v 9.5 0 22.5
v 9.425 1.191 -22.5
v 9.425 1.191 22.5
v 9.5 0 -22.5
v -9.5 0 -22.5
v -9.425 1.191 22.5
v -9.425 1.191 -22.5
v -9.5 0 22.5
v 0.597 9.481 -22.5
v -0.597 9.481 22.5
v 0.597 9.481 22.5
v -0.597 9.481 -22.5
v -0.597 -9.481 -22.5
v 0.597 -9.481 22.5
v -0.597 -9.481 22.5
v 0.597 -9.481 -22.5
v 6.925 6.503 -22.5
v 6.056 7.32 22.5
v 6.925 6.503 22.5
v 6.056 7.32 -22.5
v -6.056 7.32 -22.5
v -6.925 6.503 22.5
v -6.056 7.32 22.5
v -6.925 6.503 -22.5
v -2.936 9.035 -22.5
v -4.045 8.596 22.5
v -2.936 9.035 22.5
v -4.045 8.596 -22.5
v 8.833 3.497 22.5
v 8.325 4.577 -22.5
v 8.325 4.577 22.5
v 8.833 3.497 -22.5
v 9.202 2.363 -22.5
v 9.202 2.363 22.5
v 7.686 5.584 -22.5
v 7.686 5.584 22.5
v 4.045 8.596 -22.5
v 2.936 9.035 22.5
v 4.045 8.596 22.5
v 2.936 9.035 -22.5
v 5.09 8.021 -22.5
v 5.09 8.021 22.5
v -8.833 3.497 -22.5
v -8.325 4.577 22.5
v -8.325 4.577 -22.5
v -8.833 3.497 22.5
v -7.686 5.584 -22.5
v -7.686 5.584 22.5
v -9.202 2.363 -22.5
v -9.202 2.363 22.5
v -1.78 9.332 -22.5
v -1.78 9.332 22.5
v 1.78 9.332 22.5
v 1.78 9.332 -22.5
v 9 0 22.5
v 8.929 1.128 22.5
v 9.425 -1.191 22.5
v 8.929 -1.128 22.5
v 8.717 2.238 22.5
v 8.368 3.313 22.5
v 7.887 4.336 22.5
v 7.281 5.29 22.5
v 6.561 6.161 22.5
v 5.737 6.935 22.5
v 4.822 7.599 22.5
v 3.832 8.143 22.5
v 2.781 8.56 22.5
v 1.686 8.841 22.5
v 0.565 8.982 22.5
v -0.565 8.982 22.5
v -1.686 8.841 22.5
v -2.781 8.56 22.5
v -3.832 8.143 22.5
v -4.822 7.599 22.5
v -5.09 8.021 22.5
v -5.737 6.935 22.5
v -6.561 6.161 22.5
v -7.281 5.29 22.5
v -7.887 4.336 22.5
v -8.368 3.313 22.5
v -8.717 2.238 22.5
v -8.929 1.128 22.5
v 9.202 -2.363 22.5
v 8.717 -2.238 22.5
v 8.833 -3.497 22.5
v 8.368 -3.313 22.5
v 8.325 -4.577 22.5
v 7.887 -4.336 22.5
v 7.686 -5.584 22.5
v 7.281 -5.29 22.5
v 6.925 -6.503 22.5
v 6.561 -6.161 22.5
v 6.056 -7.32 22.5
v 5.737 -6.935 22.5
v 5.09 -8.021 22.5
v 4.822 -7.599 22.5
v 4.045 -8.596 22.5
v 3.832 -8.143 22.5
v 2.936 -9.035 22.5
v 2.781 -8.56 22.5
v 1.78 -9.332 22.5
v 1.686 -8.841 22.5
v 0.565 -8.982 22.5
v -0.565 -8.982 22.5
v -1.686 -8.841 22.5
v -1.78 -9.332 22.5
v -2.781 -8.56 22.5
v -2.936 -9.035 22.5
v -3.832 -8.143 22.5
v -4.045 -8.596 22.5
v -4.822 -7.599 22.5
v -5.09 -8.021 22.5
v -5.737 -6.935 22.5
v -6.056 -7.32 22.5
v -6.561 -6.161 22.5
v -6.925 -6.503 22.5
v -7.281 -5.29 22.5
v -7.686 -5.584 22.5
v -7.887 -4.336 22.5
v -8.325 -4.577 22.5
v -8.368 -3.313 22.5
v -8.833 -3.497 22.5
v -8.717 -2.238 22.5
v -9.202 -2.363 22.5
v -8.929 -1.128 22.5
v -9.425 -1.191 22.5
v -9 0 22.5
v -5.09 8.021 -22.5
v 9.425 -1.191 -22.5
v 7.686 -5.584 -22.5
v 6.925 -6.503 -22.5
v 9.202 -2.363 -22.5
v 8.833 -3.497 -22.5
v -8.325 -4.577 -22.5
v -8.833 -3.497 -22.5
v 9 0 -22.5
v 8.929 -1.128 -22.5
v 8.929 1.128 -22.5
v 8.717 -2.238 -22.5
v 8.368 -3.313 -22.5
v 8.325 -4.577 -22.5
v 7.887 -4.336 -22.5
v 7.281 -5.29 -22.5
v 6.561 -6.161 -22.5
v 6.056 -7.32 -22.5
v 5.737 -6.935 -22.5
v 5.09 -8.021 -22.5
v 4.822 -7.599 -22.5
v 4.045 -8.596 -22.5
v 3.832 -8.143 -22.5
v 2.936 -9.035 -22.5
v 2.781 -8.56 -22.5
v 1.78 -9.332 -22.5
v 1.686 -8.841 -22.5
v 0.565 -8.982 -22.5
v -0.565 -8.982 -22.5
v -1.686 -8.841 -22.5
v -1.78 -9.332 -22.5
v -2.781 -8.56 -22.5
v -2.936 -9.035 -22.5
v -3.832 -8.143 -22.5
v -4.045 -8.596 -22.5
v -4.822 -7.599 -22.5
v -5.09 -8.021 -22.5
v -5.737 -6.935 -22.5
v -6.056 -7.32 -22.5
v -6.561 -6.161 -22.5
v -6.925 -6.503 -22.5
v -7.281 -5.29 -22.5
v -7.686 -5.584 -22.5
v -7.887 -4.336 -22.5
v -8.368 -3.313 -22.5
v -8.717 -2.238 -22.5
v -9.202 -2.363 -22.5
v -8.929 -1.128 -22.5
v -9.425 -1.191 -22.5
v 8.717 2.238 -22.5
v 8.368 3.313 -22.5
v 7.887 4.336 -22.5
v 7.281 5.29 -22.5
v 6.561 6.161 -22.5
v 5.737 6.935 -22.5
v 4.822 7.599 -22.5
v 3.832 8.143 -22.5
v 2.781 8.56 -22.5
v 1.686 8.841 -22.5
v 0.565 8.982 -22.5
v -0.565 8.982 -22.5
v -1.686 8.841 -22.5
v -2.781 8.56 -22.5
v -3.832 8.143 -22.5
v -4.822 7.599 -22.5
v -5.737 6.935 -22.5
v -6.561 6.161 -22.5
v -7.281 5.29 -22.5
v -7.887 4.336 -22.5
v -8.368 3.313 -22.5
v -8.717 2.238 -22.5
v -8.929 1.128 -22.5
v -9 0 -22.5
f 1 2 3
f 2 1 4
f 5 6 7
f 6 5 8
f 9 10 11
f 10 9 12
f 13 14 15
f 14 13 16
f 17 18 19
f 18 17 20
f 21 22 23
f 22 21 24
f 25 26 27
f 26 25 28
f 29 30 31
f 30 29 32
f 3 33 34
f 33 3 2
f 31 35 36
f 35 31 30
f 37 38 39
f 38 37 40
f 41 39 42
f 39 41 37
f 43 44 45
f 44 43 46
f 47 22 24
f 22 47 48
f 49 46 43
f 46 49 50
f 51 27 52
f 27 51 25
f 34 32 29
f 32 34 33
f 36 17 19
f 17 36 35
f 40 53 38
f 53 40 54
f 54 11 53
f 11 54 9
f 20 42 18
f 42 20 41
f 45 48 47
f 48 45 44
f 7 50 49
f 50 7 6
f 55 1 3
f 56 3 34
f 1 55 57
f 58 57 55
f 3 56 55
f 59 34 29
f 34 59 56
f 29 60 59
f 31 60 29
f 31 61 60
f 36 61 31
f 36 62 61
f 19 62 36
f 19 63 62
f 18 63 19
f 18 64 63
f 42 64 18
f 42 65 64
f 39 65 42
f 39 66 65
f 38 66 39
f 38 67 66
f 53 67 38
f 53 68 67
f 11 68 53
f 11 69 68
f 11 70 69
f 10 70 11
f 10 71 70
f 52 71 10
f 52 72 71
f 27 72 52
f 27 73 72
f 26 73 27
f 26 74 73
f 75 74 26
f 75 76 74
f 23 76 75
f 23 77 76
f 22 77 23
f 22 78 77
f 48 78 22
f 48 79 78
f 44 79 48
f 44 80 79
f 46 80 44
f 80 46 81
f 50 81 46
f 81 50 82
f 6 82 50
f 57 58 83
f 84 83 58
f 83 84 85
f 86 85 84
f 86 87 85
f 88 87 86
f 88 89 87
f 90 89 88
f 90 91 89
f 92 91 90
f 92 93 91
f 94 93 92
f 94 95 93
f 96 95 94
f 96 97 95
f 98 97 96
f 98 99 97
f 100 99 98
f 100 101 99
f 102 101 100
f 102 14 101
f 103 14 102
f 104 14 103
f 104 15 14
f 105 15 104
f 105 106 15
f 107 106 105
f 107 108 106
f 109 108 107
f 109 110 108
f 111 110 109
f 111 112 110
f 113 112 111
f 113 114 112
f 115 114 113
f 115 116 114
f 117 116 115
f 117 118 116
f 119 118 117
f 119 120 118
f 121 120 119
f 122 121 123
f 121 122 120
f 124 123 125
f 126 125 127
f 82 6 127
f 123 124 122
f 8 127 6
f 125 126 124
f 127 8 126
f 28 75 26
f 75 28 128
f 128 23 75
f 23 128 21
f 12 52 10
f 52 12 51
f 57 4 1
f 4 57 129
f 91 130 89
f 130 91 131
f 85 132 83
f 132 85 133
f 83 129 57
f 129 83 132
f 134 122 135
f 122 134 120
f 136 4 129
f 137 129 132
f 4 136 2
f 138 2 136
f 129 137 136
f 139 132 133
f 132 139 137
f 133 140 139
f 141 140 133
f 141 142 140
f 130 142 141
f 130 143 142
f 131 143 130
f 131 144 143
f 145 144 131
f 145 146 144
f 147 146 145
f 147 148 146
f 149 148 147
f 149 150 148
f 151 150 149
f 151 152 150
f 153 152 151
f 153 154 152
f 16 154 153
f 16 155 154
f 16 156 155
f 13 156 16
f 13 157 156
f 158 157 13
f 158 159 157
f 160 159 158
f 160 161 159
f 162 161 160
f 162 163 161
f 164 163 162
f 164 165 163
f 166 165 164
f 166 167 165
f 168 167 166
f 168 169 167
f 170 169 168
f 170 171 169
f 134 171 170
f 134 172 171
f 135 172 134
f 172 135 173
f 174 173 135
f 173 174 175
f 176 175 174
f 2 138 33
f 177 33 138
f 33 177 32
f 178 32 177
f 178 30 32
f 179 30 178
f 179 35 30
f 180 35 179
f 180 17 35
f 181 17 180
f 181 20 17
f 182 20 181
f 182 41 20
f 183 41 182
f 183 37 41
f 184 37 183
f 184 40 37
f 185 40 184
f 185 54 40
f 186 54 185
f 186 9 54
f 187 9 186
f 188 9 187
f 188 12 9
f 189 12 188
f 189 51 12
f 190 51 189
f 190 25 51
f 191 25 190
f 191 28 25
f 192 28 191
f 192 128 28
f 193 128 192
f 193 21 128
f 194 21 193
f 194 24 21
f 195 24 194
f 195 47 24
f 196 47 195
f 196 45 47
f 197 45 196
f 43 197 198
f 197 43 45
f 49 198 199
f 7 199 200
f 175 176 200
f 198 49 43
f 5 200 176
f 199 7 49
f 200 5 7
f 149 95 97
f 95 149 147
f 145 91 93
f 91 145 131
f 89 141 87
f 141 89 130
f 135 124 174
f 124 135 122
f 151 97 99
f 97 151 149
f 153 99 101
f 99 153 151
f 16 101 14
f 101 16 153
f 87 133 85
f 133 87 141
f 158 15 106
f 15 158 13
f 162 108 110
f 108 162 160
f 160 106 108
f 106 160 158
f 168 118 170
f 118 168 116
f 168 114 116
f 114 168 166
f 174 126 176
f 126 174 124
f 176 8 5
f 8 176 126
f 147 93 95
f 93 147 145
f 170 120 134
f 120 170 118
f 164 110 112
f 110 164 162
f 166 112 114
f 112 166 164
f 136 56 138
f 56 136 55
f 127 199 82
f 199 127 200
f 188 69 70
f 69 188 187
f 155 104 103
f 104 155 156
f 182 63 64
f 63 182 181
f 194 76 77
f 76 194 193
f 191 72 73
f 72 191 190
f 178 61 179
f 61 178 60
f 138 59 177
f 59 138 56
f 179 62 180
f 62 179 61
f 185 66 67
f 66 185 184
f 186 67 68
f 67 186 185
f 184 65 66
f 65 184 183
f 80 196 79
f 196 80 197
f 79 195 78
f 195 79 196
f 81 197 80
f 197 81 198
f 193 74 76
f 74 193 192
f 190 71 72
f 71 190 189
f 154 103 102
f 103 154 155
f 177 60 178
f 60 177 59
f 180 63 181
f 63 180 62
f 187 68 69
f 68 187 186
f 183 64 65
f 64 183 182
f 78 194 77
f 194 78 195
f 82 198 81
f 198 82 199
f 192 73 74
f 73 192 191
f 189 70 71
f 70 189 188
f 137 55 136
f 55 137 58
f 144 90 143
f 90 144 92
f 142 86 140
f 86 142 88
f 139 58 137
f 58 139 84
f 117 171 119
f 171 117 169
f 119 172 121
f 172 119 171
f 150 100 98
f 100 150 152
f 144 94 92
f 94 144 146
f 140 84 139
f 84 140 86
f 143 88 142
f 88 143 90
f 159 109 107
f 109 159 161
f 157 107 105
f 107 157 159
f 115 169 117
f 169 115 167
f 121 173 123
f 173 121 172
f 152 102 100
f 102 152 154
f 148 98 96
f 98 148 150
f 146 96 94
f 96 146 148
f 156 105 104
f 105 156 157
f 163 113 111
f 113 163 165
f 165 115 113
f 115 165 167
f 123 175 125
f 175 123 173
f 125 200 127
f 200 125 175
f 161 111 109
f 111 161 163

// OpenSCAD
$fn = 50;


difference() {
	union() {
		translate(v = [0, 0, -22.5000000000]) {
			cylinder(h = 45, r = 9.5000000000);
		}
	}
	union() {
		translate(v = [0, 0, -100.0000000000]) {
			cylinder(h = 200, r = 9);
		}
	}
}
